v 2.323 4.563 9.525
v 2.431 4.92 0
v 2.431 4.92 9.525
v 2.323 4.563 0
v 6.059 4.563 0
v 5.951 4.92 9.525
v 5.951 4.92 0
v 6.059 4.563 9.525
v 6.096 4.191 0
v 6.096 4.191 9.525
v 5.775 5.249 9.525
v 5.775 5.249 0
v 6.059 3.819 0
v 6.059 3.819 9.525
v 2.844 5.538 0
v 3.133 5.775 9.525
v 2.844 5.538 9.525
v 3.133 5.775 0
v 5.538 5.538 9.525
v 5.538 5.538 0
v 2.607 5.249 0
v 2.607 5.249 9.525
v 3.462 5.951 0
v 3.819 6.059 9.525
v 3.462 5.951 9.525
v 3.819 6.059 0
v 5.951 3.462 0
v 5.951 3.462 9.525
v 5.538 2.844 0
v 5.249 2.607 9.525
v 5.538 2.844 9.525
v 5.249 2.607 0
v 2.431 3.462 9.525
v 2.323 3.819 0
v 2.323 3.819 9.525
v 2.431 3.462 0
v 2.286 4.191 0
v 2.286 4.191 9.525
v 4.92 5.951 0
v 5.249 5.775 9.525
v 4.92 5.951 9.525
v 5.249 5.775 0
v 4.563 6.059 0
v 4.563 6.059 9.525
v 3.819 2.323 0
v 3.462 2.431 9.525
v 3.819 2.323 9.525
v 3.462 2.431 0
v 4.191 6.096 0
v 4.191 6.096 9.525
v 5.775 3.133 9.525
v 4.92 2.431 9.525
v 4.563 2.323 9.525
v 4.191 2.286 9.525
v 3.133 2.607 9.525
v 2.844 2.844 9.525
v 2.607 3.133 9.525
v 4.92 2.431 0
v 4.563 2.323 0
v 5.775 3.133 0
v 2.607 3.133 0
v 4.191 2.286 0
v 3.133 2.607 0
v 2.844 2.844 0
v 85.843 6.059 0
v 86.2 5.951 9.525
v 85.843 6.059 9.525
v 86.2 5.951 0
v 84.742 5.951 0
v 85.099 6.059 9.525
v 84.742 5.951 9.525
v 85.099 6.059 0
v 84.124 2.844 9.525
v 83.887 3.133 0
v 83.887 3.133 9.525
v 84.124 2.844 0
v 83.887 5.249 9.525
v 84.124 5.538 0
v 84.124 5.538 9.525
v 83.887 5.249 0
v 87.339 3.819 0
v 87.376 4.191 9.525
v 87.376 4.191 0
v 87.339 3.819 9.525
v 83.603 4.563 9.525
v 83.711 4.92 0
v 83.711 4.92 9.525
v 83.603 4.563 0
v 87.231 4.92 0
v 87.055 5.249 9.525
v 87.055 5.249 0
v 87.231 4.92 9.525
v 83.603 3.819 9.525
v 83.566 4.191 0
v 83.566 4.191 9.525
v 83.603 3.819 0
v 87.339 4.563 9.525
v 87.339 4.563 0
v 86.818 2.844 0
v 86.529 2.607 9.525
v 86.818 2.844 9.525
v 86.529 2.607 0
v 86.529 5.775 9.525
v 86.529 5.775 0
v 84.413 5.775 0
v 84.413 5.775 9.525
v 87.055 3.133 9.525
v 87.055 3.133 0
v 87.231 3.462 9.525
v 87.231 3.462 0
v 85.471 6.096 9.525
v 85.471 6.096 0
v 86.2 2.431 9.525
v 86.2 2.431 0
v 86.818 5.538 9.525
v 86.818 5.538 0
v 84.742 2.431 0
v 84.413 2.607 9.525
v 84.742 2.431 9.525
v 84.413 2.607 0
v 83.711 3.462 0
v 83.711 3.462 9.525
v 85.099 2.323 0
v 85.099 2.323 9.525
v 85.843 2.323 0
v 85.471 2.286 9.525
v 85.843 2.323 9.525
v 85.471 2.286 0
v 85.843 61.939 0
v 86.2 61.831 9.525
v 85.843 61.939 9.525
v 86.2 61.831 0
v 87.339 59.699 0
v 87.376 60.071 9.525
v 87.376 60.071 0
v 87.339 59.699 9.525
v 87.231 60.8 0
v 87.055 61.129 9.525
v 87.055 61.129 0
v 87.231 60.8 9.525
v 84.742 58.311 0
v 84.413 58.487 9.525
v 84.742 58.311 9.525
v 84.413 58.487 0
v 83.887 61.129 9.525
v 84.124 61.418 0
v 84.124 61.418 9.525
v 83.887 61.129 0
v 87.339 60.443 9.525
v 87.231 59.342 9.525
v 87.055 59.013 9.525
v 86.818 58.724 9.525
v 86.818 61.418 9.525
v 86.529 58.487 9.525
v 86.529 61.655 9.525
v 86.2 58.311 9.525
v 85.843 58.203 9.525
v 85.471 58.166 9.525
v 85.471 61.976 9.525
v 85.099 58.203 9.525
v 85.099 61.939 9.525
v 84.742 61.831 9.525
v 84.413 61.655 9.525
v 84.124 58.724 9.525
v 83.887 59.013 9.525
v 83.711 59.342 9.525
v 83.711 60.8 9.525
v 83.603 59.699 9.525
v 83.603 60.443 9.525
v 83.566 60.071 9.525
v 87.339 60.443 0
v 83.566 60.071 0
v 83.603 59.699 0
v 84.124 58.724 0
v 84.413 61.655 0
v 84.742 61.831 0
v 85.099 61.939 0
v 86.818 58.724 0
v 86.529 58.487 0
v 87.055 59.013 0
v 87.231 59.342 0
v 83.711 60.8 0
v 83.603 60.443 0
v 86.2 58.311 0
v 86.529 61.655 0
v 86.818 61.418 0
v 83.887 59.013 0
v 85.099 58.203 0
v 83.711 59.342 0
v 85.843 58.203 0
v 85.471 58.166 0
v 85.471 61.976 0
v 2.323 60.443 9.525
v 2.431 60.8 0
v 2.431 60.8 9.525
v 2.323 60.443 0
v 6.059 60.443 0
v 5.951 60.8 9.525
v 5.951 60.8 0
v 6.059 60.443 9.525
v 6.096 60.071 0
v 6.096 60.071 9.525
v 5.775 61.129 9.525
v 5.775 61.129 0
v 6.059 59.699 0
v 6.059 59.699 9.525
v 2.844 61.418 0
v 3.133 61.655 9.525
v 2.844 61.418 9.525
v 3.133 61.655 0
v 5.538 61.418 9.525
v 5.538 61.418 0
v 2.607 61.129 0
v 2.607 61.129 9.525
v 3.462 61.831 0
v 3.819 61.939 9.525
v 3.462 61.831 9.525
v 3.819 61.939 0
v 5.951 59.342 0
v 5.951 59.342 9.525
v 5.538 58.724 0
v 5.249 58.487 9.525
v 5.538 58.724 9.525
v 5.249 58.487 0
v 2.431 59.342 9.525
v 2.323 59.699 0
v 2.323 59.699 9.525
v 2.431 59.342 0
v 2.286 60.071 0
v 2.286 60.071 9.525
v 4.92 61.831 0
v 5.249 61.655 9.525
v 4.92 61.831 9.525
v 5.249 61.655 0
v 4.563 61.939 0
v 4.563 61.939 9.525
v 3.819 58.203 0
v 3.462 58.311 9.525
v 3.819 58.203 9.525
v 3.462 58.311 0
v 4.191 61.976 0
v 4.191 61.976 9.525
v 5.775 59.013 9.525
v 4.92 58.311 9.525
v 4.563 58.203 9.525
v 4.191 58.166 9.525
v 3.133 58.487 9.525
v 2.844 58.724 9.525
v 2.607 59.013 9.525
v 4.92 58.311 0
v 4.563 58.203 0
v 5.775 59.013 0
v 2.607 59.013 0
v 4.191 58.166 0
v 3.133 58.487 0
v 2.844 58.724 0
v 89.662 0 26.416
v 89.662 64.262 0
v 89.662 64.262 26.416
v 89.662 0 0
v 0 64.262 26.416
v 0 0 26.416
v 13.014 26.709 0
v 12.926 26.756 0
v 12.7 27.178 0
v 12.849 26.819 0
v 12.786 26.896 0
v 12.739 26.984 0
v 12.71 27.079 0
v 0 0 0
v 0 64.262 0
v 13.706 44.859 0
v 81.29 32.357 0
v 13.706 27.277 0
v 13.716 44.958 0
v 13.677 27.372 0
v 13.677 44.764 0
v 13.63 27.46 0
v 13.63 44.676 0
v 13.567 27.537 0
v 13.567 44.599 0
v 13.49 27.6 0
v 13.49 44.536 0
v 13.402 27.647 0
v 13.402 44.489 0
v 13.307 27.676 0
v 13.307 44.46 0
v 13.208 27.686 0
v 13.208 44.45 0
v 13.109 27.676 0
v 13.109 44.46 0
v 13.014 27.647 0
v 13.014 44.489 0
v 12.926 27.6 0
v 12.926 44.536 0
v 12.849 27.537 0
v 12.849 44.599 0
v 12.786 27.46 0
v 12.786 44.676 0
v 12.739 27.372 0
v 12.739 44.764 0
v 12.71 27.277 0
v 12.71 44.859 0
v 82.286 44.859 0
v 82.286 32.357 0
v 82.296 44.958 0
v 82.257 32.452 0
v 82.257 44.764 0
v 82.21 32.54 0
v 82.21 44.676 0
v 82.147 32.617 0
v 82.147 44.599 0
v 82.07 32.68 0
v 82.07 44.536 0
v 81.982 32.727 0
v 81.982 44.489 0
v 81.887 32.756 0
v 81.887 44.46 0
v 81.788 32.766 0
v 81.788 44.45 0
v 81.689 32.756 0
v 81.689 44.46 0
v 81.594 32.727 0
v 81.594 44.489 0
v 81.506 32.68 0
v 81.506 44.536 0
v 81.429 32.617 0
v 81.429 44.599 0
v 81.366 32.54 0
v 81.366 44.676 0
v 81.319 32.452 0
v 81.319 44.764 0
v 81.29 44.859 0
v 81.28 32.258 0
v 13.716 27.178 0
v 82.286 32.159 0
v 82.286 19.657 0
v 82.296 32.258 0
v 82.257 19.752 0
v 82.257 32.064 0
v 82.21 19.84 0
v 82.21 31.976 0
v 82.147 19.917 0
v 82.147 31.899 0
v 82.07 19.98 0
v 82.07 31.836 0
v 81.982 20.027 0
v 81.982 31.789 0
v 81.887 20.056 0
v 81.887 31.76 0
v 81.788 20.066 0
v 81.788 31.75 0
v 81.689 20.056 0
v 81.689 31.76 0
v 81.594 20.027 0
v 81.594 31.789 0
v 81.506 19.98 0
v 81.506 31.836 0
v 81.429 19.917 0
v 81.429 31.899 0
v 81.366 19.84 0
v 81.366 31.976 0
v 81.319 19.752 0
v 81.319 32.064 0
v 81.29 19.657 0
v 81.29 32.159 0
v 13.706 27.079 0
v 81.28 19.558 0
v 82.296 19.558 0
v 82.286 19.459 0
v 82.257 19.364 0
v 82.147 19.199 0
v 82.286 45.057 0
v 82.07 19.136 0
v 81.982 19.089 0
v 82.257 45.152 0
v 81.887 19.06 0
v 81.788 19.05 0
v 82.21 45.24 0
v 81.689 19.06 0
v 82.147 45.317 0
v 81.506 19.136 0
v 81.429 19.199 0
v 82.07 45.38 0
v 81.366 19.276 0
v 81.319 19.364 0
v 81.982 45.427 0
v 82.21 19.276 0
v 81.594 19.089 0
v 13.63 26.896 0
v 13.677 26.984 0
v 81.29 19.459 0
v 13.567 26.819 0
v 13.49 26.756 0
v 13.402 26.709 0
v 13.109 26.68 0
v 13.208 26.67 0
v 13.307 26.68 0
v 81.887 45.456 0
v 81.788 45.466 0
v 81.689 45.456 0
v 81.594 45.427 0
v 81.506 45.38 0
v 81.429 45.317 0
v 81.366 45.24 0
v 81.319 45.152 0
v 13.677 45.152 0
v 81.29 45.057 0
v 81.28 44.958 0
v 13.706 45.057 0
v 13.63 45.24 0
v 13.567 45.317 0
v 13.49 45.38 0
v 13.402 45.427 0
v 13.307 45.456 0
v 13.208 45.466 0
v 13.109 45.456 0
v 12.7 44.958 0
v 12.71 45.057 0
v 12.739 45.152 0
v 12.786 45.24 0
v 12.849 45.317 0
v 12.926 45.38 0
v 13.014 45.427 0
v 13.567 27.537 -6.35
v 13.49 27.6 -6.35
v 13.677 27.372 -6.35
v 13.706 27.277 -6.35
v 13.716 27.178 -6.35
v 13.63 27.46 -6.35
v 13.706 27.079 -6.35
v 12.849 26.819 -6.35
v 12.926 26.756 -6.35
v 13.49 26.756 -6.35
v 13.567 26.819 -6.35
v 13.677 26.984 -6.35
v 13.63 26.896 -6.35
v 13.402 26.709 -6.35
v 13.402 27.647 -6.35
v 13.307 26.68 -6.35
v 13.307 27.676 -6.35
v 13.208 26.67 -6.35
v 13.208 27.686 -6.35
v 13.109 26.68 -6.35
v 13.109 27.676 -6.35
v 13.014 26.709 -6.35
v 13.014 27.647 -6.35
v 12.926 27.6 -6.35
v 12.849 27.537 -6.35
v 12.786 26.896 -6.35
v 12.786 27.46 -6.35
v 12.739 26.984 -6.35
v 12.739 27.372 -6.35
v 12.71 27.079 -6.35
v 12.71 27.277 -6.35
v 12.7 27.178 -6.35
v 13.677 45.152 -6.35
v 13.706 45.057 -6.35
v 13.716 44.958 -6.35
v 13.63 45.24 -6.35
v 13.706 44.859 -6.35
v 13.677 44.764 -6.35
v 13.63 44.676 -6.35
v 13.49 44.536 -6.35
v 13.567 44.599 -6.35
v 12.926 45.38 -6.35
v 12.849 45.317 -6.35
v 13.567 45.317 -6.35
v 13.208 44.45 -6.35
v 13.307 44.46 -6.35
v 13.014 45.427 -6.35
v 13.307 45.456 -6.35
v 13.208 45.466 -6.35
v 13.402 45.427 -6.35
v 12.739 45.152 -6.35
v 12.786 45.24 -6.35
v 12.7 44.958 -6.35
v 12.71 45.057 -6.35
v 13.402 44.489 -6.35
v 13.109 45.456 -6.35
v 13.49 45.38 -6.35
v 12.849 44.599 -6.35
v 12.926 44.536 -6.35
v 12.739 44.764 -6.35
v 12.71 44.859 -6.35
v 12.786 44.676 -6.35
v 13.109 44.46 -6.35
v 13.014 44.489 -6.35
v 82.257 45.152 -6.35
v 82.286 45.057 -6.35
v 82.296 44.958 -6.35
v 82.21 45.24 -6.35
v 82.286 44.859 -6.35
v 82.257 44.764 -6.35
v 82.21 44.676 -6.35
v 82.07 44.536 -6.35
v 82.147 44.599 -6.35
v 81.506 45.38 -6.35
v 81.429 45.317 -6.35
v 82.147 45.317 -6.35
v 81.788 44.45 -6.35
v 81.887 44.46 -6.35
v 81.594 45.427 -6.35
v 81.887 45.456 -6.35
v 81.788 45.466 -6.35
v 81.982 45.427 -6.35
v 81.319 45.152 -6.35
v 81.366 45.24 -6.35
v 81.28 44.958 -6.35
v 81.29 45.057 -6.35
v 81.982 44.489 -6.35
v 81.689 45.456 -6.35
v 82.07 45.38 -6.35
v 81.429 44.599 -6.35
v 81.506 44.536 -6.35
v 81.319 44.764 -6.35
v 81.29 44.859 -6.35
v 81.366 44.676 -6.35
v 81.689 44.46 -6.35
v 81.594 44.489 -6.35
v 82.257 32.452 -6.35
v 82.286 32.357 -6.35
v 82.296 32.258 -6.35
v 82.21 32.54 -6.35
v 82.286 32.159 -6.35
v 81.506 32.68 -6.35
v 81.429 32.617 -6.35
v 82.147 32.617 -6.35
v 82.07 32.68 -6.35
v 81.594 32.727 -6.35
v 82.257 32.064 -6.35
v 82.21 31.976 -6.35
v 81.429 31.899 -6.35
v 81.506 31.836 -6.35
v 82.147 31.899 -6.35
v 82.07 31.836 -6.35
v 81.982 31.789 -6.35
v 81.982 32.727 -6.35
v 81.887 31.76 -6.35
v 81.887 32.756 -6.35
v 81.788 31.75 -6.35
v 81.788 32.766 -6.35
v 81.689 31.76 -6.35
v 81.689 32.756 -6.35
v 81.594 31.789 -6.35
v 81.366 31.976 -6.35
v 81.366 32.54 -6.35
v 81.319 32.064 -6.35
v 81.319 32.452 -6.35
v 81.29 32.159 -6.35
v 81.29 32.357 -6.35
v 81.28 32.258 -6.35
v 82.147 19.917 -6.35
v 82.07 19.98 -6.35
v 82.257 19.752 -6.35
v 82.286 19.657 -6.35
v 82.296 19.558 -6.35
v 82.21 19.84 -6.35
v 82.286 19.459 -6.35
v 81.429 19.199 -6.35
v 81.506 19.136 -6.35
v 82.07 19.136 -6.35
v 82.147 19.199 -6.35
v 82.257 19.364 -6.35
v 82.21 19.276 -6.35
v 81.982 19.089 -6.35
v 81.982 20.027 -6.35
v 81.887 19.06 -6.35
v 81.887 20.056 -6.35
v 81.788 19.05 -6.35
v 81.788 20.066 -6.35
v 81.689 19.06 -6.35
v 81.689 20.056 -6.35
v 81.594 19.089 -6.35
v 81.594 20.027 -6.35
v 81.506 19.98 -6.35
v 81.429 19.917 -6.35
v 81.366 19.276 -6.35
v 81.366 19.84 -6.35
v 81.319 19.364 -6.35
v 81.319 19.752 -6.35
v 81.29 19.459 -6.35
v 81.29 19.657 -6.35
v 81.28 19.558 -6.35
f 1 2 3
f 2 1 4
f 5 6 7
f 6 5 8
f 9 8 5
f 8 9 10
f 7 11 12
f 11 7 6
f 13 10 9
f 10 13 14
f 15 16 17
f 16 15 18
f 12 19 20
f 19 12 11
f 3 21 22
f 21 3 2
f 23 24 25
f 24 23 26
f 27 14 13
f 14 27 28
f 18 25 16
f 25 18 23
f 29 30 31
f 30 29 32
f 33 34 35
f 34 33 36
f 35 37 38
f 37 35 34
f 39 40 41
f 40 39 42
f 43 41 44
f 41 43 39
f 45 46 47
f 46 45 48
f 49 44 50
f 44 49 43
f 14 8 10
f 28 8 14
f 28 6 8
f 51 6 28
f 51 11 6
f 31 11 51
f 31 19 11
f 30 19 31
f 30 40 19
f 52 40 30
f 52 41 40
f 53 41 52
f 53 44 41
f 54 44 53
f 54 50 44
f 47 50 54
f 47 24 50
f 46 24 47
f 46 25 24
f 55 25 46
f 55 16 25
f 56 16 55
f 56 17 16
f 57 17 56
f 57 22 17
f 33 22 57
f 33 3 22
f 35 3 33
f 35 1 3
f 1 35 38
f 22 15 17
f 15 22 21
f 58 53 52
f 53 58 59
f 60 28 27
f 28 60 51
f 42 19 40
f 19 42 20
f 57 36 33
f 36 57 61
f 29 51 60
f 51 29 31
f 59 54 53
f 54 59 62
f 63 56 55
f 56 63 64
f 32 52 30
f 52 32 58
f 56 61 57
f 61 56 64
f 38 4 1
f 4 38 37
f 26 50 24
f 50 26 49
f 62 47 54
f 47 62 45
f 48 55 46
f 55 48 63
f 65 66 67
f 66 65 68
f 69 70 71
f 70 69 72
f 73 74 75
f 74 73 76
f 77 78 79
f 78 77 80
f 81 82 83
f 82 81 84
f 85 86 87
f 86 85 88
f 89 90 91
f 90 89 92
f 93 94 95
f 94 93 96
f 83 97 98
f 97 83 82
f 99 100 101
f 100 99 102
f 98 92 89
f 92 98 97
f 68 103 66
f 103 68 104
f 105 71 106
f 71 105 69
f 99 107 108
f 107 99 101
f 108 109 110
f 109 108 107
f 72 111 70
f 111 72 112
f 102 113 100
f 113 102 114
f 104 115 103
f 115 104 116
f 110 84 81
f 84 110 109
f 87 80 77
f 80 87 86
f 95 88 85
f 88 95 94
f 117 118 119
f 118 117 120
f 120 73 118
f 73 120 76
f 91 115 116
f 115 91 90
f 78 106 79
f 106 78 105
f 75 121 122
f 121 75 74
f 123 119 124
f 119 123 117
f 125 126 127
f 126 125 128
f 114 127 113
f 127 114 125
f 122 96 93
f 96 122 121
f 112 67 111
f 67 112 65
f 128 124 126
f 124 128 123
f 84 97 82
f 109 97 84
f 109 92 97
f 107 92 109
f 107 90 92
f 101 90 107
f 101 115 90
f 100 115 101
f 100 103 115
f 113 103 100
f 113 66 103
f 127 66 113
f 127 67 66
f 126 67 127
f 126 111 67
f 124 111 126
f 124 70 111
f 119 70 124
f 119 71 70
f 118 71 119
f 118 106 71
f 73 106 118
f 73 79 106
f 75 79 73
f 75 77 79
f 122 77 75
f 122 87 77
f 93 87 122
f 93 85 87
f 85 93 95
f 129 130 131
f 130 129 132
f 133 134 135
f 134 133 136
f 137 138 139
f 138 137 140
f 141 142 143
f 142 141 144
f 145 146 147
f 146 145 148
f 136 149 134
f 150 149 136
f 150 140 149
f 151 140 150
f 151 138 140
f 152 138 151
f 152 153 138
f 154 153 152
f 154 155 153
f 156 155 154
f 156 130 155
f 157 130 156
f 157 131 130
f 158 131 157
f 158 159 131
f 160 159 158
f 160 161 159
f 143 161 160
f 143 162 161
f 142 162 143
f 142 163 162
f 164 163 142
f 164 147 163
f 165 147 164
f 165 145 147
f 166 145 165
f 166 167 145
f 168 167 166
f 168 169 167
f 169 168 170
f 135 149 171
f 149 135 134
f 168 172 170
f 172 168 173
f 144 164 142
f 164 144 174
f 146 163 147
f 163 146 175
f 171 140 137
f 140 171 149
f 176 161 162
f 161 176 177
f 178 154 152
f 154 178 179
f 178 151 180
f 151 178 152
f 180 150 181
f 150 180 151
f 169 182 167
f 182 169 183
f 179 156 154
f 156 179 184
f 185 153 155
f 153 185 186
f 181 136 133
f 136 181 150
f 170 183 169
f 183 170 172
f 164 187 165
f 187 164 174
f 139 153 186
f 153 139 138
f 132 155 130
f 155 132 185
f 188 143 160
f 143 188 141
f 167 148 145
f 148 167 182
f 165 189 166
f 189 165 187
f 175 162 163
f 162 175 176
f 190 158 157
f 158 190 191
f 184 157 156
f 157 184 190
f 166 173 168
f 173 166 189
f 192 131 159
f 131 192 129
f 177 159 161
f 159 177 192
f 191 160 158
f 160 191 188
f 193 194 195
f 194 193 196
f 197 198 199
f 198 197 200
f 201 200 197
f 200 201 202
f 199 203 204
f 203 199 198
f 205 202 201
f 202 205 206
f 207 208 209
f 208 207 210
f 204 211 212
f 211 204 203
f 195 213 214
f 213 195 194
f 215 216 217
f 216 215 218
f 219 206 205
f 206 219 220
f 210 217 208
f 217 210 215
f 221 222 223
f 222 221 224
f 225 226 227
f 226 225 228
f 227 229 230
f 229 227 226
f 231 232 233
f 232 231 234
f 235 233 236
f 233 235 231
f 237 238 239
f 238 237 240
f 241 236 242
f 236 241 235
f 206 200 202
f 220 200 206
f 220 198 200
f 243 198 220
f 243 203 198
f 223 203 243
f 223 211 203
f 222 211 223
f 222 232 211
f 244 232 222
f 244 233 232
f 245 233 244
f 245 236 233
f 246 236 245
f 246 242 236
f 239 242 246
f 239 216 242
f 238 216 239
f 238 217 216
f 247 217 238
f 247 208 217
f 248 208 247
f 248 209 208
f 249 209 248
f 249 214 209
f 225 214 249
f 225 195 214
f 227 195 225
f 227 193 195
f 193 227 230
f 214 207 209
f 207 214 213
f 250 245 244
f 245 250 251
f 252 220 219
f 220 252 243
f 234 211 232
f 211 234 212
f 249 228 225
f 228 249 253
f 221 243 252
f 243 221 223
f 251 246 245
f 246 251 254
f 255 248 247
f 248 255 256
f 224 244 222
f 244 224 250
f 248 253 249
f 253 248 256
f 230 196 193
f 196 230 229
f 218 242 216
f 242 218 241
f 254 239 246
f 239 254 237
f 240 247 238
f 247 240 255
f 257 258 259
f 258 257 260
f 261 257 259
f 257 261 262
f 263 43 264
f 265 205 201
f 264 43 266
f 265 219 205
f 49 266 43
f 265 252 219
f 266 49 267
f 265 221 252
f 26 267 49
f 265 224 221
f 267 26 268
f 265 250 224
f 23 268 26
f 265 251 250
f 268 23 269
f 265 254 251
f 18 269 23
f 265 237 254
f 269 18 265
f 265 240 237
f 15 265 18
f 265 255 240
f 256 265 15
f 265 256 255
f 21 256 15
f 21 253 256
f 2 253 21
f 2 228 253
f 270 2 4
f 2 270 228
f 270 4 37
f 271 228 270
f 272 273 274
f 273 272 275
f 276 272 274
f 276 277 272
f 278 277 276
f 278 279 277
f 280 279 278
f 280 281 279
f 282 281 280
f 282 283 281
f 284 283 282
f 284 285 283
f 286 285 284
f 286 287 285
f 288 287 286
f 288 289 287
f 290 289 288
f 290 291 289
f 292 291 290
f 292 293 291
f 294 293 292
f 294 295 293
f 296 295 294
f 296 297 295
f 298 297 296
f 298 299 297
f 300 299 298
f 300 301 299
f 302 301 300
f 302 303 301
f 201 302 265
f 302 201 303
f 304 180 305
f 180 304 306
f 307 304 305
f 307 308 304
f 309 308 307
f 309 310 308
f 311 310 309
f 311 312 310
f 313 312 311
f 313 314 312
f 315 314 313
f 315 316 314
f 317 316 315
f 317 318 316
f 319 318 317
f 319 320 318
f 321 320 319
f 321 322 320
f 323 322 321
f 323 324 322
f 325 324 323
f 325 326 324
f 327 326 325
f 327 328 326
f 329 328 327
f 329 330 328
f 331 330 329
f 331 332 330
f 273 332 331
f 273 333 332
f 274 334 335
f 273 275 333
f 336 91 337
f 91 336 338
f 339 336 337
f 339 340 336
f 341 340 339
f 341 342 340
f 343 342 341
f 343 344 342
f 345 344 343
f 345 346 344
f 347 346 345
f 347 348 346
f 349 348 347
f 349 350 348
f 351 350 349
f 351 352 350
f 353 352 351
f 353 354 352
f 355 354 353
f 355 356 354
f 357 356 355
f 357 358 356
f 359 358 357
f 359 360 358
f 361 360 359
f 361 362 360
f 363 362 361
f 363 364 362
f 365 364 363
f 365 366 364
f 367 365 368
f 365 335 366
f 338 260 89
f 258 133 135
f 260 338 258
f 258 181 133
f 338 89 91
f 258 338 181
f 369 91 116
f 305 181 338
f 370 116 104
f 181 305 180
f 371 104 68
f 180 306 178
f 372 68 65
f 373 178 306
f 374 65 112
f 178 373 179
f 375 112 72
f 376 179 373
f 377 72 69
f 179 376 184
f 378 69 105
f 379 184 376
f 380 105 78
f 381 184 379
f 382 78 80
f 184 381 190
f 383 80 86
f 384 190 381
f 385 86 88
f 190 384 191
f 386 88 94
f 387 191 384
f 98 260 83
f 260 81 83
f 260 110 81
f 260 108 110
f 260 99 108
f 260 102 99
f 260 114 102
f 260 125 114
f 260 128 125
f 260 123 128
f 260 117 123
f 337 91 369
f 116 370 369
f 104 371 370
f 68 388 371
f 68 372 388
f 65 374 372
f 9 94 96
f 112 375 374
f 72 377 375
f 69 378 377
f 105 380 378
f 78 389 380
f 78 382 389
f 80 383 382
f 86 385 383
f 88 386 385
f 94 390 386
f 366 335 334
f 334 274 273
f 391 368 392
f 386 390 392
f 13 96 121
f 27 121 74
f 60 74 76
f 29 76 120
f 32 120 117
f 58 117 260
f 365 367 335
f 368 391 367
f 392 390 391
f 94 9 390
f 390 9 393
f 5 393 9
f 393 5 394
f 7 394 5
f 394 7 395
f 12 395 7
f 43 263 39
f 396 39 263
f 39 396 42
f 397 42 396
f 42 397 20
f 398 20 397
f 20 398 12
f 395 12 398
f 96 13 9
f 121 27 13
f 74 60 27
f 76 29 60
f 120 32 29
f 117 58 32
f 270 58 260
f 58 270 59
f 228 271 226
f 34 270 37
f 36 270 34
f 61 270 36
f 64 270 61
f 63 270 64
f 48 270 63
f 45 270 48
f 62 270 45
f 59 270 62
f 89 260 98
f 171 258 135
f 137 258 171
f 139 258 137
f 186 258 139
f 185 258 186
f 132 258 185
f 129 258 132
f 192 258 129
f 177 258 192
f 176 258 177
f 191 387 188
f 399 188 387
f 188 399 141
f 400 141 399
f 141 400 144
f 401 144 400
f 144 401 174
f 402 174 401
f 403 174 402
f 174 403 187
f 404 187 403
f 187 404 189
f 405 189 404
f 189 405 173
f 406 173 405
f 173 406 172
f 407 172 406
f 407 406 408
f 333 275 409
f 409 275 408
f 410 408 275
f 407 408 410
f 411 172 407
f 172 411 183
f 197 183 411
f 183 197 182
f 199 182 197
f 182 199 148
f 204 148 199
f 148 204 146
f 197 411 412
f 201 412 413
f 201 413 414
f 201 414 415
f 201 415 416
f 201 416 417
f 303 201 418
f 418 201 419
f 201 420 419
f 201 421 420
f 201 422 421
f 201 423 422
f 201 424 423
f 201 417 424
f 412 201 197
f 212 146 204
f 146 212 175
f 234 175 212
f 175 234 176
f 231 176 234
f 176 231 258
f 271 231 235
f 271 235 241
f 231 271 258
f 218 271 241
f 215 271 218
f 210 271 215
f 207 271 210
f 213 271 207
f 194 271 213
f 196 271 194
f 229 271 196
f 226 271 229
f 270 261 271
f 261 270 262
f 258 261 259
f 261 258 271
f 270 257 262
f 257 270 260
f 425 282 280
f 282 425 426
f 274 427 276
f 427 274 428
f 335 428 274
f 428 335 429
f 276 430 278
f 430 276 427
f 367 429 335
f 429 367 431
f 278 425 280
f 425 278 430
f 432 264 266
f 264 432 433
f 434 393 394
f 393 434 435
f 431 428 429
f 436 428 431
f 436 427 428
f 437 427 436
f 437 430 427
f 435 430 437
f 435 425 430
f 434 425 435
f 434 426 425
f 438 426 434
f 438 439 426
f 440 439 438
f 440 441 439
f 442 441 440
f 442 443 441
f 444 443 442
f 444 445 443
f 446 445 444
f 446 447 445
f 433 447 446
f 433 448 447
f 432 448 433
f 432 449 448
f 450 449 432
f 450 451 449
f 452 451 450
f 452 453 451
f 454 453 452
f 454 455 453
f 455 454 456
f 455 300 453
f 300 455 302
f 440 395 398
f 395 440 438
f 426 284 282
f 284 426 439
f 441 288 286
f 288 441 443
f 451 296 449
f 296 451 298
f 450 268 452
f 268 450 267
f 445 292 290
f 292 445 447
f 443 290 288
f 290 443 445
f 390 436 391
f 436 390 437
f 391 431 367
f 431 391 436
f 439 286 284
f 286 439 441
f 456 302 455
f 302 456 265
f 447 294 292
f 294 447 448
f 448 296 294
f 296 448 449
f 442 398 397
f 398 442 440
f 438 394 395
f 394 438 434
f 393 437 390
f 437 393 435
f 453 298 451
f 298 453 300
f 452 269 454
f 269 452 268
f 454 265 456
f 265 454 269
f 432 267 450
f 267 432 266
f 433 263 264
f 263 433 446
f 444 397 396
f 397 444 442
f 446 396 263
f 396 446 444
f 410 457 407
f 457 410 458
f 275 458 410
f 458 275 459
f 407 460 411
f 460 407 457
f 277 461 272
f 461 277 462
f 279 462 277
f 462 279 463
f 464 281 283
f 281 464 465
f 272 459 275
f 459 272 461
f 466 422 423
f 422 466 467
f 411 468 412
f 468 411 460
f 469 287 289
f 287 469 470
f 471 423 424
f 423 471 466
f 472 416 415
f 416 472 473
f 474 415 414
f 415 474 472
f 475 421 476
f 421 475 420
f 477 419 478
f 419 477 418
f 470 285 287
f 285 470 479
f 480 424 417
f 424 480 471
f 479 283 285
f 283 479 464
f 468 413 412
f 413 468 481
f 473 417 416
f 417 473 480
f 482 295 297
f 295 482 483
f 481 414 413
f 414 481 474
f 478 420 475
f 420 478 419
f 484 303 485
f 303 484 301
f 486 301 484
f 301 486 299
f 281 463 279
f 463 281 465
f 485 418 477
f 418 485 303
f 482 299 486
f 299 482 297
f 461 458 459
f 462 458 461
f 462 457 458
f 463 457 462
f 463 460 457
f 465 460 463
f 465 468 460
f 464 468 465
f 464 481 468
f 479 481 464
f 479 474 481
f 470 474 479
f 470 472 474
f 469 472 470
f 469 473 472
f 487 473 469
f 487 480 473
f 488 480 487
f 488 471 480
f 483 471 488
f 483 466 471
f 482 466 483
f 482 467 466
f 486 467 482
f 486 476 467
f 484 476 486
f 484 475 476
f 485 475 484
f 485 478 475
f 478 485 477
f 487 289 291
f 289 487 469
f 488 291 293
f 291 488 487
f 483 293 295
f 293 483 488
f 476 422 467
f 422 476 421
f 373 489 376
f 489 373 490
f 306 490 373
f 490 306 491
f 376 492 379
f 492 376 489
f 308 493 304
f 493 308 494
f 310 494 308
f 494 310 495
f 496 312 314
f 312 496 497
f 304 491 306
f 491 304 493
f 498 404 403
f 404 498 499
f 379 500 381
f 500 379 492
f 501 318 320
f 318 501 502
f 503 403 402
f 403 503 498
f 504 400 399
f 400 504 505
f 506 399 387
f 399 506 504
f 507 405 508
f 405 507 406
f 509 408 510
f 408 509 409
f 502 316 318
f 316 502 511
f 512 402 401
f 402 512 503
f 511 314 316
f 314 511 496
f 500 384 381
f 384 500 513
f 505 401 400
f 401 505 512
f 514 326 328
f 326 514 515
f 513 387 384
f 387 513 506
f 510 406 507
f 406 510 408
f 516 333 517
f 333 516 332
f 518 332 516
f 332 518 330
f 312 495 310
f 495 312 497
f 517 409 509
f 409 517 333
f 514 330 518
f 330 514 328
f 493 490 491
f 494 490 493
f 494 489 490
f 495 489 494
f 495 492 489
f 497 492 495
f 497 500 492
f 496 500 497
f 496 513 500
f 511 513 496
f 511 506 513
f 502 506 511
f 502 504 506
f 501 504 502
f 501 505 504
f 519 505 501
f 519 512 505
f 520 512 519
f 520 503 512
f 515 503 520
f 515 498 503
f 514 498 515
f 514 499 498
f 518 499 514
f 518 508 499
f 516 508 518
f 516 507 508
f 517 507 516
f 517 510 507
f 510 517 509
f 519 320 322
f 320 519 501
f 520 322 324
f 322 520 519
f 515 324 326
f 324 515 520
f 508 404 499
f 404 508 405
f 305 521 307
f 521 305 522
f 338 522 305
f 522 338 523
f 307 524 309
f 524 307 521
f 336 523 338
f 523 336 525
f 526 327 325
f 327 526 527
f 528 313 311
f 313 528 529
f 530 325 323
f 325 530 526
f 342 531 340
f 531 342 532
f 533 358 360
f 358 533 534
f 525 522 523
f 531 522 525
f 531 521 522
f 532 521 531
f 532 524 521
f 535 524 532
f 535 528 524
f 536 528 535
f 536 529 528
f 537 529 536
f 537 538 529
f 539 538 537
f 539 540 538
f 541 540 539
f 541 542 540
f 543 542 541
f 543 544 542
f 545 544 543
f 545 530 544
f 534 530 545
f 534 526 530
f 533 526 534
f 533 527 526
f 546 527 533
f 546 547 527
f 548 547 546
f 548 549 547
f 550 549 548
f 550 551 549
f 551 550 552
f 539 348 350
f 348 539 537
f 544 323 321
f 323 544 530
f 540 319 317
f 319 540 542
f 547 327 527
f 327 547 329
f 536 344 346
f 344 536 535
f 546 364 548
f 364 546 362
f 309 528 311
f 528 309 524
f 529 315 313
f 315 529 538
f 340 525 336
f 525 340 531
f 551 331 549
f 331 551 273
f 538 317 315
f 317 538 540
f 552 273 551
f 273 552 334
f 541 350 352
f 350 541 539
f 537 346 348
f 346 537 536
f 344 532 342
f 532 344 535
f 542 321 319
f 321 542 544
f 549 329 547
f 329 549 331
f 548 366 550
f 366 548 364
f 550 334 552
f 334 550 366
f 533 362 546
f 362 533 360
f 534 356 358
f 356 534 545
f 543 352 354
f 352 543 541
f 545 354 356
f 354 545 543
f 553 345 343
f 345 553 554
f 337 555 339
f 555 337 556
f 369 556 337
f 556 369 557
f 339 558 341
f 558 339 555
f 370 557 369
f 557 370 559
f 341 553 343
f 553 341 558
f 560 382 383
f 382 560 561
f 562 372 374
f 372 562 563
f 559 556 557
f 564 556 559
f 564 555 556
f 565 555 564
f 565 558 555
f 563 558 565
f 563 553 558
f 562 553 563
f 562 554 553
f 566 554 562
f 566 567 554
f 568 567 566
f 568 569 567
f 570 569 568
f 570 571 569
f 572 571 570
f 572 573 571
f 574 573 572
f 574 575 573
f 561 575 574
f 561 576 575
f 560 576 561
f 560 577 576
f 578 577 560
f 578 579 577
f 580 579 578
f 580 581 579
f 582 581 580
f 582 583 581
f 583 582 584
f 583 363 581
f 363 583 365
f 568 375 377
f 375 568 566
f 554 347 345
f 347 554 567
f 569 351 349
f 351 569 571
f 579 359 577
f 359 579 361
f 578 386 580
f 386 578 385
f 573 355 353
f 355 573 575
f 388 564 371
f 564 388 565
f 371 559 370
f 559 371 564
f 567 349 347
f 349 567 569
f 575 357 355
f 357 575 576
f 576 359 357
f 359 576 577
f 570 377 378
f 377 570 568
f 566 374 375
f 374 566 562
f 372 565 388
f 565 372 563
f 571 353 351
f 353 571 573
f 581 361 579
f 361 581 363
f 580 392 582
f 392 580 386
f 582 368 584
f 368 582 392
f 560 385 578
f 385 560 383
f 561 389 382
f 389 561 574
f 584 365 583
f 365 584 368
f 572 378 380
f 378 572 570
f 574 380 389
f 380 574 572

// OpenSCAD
//
// Acopian DC/DC ELC-10 case
//
$fn = 32;
e = 0.1;

function mm(x) = x*25.4;

pin_len = mm(0.25);
pin_dia = mm(0.04);

hole_dia = mm(0.15);
hole_hgt = mm(0.375);

case_wid = mm(3.53);
case_len = mm(2.53);
case_hgt = mm(1.04);

p1_x = case_wid-mm(0.31+2.7);
p1_y = mm(1.07);
p2_y = p1_y+mm(0.7);

module pin_at( x, y) {
  translate( [x, y, -pin_len])
    cylinder( d=pin_dia, h=pin_len);
}

module hole_at( x, y) {
  translate( [x, y, -e])
    cylinder( d=hole_dia, h=hole_hgt+e);
}

module bv() {
  color("grey")
  difference() {
    cube( [case_wid, case_len, case_hgt]);
    translate( [mm(0.165), mm(0.165), 0]) {
      hole_at( 0, 0);
      hole_at( mm(3.2), 0);
      hole_at( mm(3.2), mm(2.2));
      hole_at( 0, mm(2.2));
    }
  }
  pin_at( p1_x, p1_y);
  pin_at( p1_x, p2_y);
  pin_at( p1_x+mm(2.7), p2_y);
  pin_at( p1_x+mm(2.7), p2_y-mm(0.5));
  pin_at( p1_x+mm(2.7), p2_y-mm(1));
}


bv();
